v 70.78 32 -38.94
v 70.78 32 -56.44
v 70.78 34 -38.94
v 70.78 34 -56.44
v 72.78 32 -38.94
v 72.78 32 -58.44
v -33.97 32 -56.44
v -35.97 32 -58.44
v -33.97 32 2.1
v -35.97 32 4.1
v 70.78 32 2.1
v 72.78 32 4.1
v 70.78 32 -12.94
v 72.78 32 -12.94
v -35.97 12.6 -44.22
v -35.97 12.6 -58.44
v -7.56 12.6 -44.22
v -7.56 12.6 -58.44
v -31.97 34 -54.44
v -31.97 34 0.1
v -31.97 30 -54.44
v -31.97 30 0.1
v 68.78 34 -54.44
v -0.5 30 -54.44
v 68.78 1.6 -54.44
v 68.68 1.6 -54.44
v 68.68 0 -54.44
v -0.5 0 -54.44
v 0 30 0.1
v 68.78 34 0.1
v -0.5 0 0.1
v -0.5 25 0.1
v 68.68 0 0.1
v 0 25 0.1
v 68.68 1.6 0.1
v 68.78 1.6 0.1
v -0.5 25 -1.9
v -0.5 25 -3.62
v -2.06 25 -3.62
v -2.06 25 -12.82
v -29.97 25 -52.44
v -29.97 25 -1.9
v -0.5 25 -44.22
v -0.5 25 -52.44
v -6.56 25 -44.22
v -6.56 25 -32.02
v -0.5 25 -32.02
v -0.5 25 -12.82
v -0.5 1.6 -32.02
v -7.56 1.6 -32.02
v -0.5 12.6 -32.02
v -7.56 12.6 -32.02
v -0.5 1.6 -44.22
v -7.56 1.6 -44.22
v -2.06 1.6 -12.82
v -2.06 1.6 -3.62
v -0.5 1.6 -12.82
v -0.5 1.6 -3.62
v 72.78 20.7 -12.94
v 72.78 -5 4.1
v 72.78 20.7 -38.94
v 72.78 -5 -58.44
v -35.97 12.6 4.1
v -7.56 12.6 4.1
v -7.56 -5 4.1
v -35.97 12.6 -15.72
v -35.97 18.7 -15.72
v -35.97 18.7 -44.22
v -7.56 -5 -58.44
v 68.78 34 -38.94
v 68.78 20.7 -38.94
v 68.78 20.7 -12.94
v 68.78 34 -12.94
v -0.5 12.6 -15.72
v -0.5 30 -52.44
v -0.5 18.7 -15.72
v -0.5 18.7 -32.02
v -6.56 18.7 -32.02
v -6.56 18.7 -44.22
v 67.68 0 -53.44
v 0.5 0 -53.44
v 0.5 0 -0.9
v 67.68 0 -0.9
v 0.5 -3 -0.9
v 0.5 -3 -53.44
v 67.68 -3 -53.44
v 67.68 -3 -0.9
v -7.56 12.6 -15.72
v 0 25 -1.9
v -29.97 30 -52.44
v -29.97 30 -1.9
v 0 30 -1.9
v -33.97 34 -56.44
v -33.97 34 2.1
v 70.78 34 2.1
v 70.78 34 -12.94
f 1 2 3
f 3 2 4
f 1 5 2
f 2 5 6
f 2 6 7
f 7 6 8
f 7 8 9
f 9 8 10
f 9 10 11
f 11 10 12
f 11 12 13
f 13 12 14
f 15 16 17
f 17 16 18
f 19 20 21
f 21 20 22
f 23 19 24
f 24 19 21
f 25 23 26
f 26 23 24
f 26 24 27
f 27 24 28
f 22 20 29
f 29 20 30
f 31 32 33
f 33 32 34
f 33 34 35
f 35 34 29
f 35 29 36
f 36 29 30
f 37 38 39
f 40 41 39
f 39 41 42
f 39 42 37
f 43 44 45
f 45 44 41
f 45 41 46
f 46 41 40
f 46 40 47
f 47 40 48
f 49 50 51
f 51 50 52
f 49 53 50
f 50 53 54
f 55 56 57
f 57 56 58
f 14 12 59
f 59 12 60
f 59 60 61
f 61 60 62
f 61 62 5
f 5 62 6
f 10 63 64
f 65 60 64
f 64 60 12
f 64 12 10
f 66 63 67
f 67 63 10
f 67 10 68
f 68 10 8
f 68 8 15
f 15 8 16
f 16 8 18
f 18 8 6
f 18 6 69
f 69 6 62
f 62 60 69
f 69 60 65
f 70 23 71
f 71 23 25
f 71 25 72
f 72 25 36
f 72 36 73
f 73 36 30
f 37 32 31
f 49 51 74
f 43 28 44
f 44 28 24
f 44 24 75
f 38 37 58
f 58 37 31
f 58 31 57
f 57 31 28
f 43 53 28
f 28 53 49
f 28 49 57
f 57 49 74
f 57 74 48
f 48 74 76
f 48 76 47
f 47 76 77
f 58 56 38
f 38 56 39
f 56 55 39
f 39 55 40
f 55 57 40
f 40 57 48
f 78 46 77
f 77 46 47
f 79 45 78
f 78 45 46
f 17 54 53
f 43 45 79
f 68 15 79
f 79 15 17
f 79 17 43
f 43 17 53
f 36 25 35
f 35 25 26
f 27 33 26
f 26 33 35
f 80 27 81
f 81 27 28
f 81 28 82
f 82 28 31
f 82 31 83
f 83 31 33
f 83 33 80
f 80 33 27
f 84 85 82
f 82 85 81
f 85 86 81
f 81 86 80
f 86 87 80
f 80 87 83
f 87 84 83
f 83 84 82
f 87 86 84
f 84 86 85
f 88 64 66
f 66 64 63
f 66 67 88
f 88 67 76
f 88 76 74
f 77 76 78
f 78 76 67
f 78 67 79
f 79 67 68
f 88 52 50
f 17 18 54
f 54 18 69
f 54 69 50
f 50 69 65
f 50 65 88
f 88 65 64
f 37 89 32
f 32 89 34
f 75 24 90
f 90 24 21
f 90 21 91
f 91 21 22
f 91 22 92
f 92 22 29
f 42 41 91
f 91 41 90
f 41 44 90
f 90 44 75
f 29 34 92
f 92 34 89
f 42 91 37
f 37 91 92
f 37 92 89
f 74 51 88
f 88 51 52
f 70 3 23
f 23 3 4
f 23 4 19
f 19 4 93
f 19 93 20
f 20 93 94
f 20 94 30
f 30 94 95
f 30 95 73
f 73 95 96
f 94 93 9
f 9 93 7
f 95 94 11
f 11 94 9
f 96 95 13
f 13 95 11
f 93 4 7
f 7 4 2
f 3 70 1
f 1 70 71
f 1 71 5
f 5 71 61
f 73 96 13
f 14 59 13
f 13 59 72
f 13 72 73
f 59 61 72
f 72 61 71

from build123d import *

# Parameters (mm, degrees)
EXTRUDE_1_DEPTH      = 32
EXTRUDE_1_DEPTH_BACK = 5
SKETCH_6_W           = 108.75
SKETCH_6_H           = 62.54
SKETCH_8_W           = 100.75
SKETCH_8_H           = 54.54
CUT_EXTRUDE_1_DEPTH  = 7
CUT_EXTRUDE_2_DEPTH  = 23.4
SKETCH_10_W          = 69.18
SKETCH_10_H          = 54.54
CUT_EXTRUDE_3_DEPTH  = 1.6
SKETCH_11_W          = 67.18
SKETCH_11_H          = 52.54
CUT_EXTRUDE_4_DEPTH  = 3
SKETCH_12_W          = 12.2
SKETCH_12_H          = 11
CUT_EXTRUDE_5_DEPTH  = 104.605353144
CUT_EXTRUDE_6_REACH  = 129.537
SKETCH_14_W          = 28.5
SKETCH_14_H          = 4.5
CUT_EXTRUDE_7_REACH  = 103.154
SKETCH_15_W          = 28.41
SKETCH_15_H          = 17.6
EXTRUDE_2_DEPTH      = 5
CUT_EXTRUDE_14_REACH = 129.537
SKETCH_23_W          = 28.5
SKETCH_23_H          = 1.6
SKETCH_25_W          = 104.75
SKETCH_25_H          = 58.54
SKETCH_25_W_2        = 100.75
SKETCH_25_H_2        = 54.54
EXTRUDE_3_DEPTH      = 2
SKETCH_26_W          = 26
SKETCH_26_H          = 13.3
CUT_EXTRUDE_15_DEPTH = 4


with BuildPart() as part:
    # ｽｹｯﾁ6 → ﾎﾞｽ - 押し出し1 (new, two sides: drawn at the far end of the back side and taken through both)
    with BuildSketch(Plane(origin=(0, 0, 0), x_dir=(1, 0, 0), z_dir=(0, 1, 0)).offset(-EXTRUDE_1_DEPTH_BACK)):
        with Locations((18.405, 27.17)):
            Rectangle(SKETCH_6_W, SKETCH_6_H)
    extrude(amount=EXTRUDE_1_DEPTH + EXTRUDE_1_DEPTH_BACK)

    # ｽｹｯﾁ8 → ｶｯﾄ - 押し出し1 (cut)
    with BuildSketch(Plane(origin=(0, 32, 0), x_dir=(1, 0, 0), z_dir=(0, 1, 0))):
        with Locations((18.405, 27.17)):
            Rectangle(SKETCH_8_W, SKETCH_8_H)
    extrude(amount=-CUT_EXTRUDE_1_DEPTH, mode=Mode.SUBTRACT)

    # ｽｹｯﾁ9 → ｶｯﾄ - 押し出し2 (cut)
    with BuildSketch(Plane(origin=(0, 25, 0), x_dir=(1, 0, 0), z_dir=(0, 1, 0))):
        Polygon((-0.5, 54.44), (-0.5, 44.22), (-6.56, 44.22), (-6.56, 32.02), (-0.5, 32.02), (-0.5, 12.82), (-2.06, 12.82), (-2.06, 3.62), (-0.5, 3.62), (-0.5, -0.1), (68.78, -0.1), (68.78, 54.44), align=None)
    extrude(amount=-CUT_EXTRUDE_2_DEPTH, mode=Mode.SUBTRACT)

    # ｽｹｯﾁ10 → ｶｯﾄ - 押し出し3 (cut)
    with BuildSketch(Plane(origin=(0, 1.6, 0), x_dir=(1, 0, 0), z_dir=(0, 1, 0))):
        with Locations((34.09, 27.17)):
            Rectangle(SKETCH_10_W, SKETCH_10_H)
    extrude(amount=-CUT_EXTRUDE_3_DEPTH, mode=Mode.SUBTRACT)

    # ｽｹｯﾁ11 → ｶｯﾄ - 押し出し4 (cut)
    with BuildSketch(Plane(origin=(0, 0, 0), x_dir=(1, 0, 0), z_dir=(0, 1, 0))):
        with Locations((34.09, 27.17)):
            Rectangle(SKETCH_11_W, SKETCH_11_H)
    extrude(amount=-CUT_EXTRUDE_4_DEPTH, mode=Mode.SUBTRACT)

    # ｽｹｯﾁ12 → ｶｯﾄ - 押し出し5 (cut, through all)
    with BuildSketch(Plane(origin=(-6.56, 0, 0), x_dir=(0, 0, -1), z_dir=(1, 0, 0))):
        with Locations((38.12, 7.1)):
            Rectangle(SKETCH_12_W, SKETCH_12_H)
    extrude(amount=-CUT_EXTRUDE_5_DEPTH, mode=Mode.SUBTRACT)

    # ｽｹｯﾁ14 → ｶｯﾄ - 押し出し6 (cut, up to next)
    with BuildSketch(Plane.ZY.offset(35.97), mode=Mode.PRIVATE) as cut_extrude_6_sk1:
        with Locations((-29.97, 16.45)):
            Rectangle(SKETCH_14_W, SKETCH_14_H)
    cut_extrude_6_tool1 = extrude(cut_extrude_6_sk1.sketch, amount=-CUT_EXTRUDE_6_REACH, mode=Mode.PRIVATE) & part.part
    add(cut_extrude_6_tool1.solids().sort_by_distance((-35.97, 16.45, -29.97))[0], mode=Mode.SUBTRACT)

    # ｶｯﾄ - 押し出し7: up to this face of the body (flat: up to its plane)
    cut_extrude_7_end = Plane(part.part.faces().sort_by_distance((18.405, 13.5, -58.44))[0])
    # ｽｹｯﾁ15 → ｶｯﾄ - 押し出し7 (cut, up to the picked face)
    with BuildSketch(Plane.XY.offset(4.1), mode=Mode.PRIVATE) as cut_extrude_7_sk1:
        with Locations((-21.765, 3.8)):
            Rectangle(SKETCH_15_W, SKETCH_15_H)
    cut_extrude_7_tool1 = split(extrude(cut_extrude_7_sk1.sketch, amount=-CUT_EXTRUDE_7_REACH, mode=Mode.PRIVATE), bisect_by=cut_extrude_7_end, keep=Keep.BOTH, mode=Mode.PRIVATE)
    add(cut_extrude_7_tool1.solids().sort_by(Axis((-21.765, 3.8, 4.1), (0, 0, -1)))[0], mode=Mode.SUBTRACT)

    # ｽｹｯﾁ16 → ﾎﾞｽ - 押し出し2 (add)
    with BuildSketch(Plane(origin=(0, 25, 0), x_dir=(1, 0, 0), z_dir=(0, 1, 0))):
        Polygon((-0.5, 54.44), (-31.97, 54.44), (-31.97, -0.1), (0, -0.1), (0, 1.9), (-29.97, 1.9), (-29.97, 52.44), (-0.5, 52.44), align=None)
    extrude(amount=EXTRUDE_2_DEPTH)

    # ｽｹｯﾁ23 → ｶｯﾄ - 押し出し14 (cut, up to next)
    with BuildSketch(Plane.ZY.offset(35.97), mode=Mode.PRIVATE) as cut_extrude_14_sk1:
        with Locations((-29.97, 13.4)):
            Rectangle(SKETCH_23_W, SKETCH_23_H)
    cut_extrude_14_tool1 = extrude(cut_extrude_14_sk1.sketch, amount=-CUT_EXTRUDE_14_REACH, mode=Mode.PRIVATE) & part.part
    add(cut_extrude_14_tool1.solids().sort_by_distance((-35.97, 13.4, -29.97))[0], mode=Mode.SUBTRACT)

    # ｽｹｯﾁ25 → ﾎﾞｽ - 押し出し3 (add)
    with BuildSketch(Plane(origin=(0, 32, 0), x_dir=(1, 0, 0), z_dir=(0, 1, 0))):
        with Locations((18.405, 27.17)):
            Rectangle(SKETCH_25_W, SKETCH_25_H)
        with Locations((18.405, 27.17)):
            Rectangle(SKETCH_25_W_2, SKETCH_25_H_2, mode=Mode.SUBTRACT)
    extrude(amount=EXTRUDE_3_DEPTH)

    # ｽｹｯﾁ26 → ｶｯﾄ - 押し出し15 (cut)
    with BuildSketch(Plane.ZY.offset(-68.78)):
        with Locations((-25.94, 27.35)):
            Rectangle(SKETCH_26_W, SKETCH_26_H)
    extrude(amount=-CUT_EXTRUDE_15_DEPTH, mode=Mode.SUBTRACT)


solid = part.part
